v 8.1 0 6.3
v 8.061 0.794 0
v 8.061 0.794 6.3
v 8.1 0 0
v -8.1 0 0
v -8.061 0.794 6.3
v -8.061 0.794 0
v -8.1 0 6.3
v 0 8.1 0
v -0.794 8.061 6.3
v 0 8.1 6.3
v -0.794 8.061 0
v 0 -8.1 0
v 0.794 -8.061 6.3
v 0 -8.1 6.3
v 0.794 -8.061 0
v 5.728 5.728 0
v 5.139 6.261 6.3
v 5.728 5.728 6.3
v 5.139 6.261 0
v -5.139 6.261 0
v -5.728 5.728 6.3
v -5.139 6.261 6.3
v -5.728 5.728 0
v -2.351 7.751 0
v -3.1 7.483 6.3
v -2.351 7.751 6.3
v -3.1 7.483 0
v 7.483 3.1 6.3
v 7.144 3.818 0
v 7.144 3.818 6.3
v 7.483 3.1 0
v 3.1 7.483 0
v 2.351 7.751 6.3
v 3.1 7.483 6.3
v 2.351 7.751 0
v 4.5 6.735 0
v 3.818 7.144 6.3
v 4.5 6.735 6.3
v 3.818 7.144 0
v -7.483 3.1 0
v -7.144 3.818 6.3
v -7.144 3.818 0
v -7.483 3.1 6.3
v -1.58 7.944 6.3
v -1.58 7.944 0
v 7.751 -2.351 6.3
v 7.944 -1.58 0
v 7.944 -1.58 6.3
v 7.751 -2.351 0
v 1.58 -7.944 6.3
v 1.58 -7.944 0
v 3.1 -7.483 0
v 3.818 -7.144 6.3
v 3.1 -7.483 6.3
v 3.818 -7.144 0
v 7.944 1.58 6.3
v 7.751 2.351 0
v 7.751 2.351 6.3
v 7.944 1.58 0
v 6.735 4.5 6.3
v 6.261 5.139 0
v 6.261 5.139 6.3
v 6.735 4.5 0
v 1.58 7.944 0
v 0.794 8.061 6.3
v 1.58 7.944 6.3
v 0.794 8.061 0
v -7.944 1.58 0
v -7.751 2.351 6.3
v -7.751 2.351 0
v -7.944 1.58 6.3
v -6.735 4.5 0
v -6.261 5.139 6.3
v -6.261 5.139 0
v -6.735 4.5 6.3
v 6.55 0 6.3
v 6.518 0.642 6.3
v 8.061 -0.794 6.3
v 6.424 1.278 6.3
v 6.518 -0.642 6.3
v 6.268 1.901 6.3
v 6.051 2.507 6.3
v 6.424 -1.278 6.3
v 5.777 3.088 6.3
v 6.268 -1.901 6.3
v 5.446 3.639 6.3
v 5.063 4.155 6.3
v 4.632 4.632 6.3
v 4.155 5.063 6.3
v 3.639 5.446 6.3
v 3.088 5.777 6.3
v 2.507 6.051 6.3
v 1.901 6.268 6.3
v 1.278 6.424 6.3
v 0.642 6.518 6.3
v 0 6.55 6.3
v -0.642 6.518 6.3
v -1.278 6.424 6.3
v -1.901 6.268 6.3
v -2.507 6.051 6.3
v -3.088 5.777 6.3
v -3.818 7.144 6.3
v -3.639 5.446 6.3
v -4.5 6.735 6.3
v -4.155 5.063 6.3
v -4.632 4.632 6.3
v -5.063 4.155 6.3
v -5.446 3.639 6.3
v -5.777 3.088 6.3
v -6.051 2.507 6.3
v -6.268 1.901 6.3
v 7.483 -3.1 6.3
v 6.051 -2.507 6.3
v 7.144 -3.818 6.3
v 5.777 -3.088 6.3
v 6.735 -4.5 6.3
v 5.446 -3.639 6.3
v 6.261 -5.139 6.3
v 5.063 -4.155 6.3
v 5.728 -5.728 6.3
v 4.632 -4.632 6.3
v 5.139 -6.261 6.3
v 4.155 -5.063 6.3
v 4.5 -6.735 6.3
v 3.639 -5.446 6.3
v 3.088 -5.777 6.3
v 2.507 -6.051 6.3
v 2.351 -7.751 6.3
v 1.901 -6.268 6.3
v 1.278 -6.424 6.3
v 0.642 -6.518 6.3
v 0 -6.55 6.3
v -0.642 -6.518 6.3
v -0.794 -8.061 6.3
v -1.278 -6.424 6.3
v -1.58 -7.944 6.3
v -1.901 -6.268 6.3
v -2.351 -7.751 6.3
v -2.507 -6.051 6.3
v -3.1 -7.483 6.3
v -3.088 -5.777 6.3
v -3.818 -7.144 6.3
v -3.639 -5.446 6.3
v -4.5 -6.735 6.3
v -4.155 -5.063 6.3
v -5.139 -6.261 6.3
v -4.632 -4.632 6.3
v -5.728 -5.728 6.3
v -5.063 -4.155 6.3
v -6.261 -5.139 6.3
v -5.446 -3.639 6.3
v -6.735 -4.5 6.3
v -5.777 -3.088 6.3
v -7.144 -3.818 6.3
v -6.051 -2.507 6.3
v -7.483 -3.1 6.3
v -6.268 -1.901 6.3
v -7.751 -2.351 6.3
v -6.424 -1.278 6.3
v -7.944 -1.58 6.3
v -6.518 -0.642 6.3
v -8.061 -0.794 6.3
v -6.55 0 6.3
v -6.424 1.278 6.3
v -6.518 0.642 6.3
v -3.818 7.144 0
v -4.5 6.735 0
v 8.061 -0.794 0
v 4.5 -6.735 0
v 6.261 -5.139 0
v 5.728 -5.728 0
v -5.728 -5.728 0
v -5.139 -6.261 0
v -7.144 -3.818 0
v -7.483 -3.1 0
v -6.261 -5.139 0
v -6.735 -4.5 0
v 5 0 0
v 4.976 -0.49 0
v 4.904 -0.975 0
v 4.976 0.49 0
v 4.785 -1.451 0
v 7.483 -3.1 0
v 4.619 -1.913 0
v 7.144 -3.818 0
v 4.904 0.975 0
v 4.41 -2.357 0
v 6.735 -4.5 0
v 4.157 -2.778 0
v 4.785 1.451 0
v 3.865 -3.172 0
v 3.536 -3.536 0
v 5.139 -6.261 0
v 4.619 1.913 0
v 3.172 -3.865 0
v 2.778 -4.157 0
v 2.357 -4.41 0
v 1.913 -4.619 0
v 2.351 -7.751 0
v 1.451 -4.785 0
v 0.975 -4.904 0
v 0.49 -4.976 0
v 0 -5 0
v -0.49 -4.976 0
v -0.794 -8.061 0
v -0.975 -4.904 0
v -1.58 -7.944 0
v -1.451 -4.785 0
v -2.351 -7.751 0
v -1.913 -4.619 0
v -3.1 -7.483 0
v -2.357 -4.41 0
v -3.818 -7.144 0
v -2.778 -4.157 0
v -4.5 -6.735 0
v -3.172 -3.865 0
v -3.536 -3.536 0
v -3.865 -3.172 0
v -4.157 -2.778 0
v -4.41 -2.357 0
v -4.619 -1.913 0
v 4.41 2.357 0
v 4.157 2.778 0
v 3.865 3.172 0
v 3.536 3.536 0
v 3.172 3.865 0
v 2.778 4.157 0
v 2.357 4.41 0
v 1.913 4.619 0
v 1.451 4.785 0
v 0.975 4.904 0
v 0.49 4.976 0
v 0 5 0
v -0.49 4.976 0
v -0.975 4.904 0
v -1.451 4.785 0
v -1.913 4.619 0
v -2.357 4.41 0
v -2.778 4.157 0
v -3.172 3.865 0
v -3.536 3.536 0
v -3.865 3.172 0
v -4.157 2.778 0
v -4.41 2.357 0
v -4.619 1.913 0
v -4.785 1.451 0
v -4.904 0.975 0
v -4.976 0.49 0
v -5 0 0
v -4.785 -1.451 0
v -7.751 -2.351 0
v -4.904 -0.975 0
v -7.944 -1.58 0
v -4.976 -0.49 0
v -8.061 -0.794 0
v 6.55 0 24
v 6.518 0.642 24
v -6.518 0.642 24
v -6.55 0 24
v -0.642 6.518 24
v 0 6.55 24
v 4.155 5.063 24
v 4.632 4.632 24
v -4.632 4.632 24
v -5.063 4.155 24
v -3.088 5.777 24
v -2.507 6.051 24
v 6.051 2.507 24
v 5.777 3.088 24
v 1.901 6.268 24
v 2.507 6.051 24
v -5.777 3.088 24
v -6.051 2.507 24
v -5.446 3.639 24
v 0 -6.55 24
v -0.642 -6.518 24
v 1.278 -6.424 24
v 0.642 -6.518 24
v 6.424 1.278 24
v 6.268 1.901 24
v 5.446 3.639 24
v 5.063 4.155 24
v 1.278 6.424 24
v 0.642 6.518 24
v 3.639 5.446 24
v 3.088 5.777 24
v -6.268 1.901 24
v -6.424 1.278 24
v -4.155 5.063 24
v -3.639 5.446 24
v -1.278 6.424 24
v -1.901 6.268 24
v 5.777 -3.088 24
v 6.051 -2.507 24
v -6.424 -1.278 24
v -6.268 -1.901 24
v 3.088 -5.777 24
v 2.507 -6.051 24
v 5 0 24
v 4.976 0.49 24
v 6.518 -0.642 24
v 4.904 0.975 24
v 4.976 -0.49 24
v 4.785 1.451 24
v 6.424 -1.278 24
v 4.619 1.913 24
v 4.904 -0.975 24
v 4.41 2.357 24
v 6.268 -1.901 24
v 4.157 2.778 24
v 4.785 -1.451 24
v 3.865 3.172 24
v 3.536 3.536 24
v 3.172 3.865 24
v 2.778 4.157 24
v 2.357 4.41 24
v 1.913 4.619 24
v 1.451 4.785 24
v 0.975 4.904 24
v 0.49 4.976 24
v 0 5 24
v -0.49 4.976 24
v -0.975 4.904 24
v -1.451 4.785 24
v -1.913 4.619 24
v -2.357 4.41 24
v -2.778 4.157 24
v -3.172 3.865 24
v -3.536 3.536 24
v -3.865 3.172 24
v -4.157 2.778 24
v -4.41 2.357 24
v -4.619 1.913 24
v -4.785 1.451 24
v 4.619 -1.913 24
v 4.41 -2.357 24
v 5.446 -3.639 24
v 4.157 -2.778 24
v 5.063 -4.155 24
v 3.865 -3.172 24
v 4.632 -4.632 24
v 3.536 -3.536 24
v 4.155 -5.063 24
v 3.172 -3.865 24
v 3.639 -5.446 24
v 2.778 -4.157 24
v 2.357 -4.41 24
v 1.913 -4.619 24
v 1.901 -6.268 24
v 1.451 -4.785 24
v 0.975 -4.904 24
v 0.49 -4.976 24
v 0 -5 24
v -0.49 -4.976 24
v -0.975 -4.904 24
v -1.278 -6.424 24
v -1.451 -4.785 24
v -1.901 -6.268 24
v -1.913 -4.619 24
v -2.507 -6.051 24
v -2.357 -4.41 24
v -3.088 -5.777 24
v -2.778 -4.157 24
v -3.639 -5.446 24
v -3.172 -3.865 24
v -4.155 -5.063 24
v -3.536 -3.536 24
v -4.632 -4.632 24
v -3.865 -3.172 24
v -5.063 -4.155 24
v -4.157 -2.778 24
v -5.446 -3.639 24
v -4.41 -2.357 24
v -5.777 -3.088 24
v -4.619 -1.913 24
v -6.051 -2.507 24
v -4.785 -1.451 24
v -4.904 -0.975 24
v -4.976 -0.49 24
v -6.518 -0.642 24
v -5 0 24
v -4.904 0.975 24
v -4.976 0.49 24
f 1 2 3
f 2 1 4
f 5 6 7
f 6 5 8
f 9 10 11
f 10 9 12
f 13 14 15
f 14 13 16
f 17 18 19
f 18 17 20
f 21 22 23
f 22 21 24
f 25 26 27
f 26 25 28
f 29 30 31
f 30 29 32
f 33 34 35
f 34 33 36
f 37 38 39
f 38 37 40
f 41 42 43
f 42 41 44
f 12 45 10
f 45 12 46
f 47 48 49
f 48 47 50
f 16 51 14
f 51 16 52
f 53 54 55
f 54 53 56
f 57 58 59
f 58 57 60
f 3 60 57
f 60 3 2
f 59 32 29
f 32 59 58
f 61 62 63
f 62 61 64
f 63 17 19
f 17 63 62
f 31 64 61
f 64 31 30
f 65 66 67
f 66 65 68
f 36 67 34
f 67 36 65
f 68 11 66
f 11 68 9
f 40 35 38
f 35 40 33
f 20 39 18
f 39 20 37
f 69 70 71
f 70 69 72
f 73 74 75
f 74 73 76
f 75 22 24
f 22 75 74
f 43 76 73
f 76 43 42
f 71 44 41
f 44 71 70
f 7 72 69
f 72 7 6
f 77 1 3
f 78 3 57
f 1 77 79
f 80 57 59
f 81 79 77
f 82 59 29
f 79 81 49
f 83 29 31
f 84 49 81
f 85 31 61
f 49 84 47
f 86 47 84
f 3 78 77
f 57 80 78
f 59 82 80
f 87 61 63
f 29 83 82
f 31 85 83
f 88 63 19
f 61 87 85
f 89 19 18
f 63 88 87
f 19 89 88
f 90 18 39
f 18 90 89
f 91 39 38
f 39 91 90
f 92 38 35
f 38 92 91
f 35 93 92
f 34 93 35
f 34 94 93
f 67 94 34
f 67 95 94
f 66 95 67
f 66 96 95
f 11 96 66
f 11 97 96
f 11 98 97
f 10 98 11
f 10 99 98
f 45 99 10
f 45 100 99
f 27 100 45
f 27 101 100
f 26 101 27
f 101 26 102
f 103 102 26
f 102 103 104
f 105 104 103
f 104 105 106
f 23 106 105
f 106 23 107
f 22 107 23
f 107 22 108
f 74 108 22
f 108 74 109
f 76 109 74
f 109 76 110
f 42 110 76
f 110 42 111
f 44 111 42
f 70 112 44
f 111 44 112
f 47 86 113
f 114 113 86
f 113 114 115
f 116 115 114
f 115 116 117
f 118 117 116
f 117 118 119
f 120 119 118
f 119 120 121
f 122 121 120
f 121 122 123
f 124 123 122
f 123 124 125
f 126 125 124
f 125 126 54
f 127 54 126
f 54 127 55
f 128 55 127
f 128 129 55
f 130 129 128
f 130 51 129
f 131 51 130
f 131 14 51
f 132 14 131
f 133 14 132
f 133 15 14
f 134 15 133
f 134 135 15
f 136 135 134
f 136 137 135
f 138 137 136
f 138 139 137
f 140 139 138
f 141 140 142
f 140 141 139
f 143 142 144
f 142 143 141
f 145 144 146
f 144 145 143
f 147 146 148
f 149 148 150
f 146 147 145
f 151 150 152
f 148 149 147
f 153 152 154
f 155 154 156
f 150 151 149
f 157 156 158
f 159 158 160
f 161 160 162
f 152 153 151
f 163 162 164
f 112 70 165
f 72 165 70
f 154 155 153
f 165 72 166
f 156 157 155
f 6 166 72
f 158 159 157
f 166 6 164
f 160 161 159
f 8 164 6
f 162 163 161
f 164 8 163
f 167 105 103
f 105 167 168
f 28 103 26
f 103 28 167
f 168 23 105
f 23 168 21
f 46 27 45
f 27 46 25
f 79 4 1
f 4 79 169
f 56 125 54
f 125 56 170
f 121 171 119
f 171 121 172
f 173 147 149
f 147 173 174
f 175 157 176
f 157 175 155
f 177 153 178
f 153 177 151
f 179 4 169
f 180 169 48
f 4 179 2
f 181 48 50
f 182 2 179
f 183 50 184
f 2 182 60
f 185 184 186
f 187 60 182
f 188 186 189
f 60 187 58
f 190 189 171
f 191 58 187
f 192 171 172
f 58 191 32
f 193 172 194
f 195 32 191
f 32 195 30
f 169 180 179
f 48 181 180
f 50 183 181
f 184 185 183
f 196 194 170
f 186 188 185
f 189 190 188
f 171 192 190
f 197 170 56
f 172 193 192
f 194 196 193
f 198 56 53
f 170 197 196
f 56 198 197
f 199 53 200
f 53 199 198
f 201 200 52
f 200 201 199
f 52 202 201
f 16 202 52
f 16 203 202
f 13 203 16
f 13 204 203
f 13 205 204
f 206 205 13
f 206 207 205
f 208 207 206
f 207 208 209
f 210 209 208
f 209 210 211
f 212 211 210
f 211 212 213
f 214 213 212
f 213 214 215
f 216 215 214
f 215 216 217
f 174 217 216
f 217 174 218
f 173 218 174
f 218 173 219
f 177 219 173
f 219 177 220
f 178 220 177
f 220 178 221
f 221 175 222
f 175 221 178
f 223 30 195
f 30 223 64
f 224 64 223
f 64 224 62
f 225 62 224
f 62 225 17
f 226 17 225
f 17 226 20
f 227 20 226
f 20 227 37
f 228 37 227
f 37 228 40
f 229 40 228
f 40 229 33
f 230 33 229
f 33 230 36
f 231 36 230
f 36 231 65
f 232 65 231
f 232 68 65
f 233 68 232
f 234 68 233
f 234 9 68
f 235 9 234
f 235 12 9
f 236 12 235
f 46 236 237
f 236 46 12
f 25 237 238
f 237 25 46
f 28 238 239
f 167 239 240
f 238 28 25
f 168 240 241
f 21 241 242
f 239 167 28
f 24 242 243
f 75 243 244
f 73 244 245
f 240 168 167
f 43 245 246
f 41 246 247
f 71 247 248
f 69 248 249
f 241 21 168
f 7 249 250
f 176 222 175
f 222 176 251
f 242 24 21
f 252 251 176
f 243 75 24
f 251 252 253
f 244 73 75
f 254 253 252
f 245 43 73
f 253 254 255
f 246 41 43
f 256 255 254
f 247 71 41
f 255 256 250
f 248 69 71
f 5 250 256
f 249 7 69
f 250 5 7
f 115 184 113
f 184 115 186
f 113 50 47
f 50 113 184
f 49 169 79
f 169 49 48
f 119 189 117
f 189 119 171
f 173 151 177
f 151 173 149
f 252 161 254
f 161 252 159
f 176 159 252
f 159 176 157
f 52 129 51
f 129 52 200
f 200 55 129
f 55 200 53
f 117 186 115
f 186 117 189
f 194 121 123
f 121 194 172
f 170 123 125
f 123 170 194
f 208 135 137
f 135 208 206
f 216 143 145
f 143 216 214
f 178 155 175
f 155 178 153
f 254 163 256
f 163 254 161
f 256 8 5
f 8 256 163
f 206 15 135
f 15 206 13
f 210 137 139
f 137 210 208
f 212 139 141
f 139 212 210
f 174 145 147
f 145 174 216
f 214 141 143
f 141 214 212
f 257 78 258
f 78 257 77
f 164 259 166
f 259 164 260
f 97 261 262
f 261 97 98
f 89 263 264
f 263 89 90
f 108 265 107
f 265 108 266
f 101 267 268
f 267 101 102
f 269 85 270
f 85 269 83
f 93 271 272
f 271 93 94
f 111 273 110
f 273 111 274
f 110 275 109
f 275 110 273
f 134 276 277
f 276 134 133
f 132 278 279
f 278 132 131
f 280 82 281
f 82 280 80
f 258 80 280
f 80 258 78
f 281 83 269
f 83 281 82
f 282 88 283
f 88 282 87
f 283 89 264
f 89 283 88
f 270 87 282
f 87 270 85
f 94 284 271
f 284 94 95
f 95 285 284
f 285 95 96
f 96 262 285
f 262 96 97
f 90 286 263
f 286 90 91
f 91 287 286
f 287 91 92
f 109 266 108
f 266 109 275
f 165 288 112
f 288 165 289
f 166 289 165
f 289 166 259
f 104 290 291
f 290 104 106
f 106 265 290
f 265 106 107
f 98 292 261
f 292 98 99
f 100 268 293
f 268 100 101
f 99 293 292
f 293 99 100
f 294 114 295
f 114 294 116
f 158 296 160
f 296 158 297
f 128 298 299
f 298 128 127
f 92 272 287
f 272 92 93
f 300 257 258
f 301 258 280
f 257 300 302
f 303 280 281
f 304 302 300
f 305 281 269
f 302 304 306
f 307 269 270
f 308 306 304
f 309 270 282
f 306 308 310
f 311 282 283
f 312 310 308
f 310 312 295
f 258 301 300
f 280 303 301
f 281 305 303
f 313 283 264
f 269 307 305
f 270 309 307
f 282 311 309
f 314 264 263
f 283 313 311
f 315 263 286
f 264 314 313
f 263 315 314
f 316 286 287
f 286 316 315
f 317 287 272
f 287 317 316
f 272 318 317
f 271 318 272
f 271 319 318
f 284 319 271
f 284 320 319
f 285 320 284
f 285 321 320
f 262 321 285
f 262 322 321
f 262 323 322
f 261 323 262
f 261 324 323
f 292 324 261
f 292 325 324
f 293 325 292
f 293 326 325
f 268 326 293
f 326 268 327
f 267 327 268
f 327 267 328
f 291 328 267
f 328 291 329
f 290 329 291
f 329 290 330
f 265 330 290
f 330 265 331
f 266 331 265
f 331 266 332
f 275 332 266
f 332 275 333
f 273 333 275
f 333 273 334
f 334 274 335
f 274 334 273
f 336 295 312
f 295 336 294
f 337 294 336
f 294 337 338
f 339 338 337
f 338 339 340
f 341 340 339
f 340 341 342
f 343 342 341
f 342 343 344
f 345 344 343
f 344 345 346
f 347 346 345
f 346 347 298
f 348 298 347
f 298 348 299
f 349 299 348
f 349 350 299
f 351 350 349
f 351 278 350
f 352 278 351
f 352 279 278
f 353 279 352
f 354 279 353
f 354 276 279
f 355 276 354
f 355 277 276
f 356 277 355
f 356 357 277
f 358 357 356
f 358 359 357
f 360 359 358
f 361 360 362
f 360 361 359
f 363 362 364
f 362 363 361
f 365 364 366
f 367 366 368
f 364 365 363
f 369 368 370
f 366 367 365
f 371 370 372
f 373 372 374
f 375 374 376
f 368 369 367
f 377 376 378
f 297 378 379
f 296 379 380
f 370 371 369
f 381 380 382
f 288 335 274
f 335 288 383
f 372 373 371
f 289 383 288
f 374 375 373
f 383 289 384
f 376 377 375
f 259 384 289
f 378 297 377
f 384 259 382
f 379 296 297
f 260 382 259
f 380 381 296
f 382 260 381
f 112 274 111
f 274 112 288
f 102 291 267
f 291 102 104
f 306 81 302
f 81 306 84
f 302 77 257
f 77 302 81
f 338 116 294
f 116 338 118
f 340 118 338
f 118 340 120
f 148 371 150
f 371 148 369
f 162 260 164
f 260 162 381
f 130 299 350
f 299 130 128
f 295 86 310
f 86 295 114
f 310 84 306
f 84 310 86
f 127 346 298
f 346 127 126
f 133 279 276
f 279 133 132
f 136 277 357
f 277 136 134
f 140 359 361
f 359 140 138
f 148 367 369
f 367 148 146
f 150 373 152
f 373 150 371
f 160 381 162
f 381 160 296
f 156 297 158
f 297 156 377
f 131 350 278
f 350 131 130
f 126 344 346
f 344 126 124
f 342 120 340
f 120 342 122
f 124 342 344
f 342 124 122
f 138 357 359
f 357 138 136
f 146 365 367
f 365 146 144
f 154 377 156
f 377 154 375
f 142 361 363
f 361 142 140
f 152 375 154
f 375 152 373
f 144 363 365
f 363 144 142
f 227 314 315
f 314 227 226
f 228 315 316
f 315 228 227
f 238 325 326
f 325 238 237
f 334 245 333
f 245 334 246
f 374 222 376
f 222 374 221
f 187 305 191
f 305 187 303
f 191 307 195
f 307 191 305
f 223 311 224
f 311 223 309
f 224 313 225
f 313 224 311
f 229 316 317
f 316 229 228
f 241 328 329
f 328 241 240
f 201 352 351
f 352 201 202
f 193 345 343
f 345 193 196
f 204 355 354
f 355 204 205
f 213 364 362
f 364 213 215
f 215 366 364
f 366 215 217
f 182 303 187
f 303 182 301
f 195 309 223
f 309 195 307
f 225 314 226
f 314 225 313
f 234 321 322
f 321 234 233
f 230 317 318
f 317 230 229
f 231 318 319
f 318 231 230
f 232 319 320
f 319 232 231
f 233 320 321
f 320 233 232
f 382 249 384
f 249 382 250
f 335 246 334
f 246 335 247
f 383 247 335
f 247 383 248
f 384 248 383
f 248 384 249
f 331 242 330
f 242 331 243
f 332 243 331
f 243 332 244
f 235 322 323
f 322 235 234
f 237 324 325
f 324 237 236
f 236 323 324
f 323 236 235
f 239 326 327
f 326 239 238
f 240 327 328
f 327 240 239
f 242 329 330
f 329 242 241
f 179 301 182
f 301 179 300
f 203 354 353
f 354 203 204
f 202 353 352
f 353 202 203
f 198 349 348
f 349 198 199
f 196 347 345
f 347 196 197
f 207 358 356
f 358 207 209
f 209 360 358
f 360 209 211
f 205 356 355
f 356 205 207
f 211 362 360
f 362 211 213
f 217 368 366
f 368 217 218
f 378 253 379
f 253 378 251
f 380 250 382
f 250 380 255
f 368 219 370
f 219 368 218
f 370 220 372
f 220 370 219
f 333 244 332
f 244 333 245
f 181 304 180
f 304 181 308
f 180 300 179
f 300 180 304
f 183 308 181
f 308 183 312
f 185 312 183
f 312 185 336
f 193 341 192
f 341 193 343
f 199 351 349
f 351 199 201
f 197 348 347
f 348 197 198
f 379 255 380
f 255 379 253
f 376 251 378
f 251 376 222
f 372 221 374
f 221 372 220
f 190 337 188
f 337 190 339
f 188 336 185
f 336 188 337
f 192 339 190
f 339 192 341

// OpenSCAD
// Smoothness of the cylinders
$fn = 64; 

//inputs
total_height = 24; // Total height of the bushing, including the collar and the insert
id=10; // Inner diameter of the bushing
insert_od=13.1; // Outer diameter of the bushing that will fit into the pew
collar_height=6.3; // Height of the collar that will sit above the insert
collar_od=16.2; // Outer diameter of the collar

// calculations
insert_height = total_height - collar_height;// Height of the bushing that will fit into the pew

// Main module to create the bushing
module kneeler_bushing() {
    difference() {
        //combine 2 cylinders to create the main shape of the bushing with a collar on top
        union()  {
            cylinder(h=collar_height, d=collar_od); // Collar
            translate([0, 0, collar_height]) {
                cylinder(h=insert_height, d=insert_od); // Pew Insert
            }
        }

        //remove the inner material to create the hollow bushing
        translate([0, 0, -1]) // Subtract a slightly taller inner cylinder to create the hollow bushing
            cylinder(h=total_height + 2, d=id); // Inner (slightly taller to ensure clean cut)
    }
}

kneeler_bushing();
